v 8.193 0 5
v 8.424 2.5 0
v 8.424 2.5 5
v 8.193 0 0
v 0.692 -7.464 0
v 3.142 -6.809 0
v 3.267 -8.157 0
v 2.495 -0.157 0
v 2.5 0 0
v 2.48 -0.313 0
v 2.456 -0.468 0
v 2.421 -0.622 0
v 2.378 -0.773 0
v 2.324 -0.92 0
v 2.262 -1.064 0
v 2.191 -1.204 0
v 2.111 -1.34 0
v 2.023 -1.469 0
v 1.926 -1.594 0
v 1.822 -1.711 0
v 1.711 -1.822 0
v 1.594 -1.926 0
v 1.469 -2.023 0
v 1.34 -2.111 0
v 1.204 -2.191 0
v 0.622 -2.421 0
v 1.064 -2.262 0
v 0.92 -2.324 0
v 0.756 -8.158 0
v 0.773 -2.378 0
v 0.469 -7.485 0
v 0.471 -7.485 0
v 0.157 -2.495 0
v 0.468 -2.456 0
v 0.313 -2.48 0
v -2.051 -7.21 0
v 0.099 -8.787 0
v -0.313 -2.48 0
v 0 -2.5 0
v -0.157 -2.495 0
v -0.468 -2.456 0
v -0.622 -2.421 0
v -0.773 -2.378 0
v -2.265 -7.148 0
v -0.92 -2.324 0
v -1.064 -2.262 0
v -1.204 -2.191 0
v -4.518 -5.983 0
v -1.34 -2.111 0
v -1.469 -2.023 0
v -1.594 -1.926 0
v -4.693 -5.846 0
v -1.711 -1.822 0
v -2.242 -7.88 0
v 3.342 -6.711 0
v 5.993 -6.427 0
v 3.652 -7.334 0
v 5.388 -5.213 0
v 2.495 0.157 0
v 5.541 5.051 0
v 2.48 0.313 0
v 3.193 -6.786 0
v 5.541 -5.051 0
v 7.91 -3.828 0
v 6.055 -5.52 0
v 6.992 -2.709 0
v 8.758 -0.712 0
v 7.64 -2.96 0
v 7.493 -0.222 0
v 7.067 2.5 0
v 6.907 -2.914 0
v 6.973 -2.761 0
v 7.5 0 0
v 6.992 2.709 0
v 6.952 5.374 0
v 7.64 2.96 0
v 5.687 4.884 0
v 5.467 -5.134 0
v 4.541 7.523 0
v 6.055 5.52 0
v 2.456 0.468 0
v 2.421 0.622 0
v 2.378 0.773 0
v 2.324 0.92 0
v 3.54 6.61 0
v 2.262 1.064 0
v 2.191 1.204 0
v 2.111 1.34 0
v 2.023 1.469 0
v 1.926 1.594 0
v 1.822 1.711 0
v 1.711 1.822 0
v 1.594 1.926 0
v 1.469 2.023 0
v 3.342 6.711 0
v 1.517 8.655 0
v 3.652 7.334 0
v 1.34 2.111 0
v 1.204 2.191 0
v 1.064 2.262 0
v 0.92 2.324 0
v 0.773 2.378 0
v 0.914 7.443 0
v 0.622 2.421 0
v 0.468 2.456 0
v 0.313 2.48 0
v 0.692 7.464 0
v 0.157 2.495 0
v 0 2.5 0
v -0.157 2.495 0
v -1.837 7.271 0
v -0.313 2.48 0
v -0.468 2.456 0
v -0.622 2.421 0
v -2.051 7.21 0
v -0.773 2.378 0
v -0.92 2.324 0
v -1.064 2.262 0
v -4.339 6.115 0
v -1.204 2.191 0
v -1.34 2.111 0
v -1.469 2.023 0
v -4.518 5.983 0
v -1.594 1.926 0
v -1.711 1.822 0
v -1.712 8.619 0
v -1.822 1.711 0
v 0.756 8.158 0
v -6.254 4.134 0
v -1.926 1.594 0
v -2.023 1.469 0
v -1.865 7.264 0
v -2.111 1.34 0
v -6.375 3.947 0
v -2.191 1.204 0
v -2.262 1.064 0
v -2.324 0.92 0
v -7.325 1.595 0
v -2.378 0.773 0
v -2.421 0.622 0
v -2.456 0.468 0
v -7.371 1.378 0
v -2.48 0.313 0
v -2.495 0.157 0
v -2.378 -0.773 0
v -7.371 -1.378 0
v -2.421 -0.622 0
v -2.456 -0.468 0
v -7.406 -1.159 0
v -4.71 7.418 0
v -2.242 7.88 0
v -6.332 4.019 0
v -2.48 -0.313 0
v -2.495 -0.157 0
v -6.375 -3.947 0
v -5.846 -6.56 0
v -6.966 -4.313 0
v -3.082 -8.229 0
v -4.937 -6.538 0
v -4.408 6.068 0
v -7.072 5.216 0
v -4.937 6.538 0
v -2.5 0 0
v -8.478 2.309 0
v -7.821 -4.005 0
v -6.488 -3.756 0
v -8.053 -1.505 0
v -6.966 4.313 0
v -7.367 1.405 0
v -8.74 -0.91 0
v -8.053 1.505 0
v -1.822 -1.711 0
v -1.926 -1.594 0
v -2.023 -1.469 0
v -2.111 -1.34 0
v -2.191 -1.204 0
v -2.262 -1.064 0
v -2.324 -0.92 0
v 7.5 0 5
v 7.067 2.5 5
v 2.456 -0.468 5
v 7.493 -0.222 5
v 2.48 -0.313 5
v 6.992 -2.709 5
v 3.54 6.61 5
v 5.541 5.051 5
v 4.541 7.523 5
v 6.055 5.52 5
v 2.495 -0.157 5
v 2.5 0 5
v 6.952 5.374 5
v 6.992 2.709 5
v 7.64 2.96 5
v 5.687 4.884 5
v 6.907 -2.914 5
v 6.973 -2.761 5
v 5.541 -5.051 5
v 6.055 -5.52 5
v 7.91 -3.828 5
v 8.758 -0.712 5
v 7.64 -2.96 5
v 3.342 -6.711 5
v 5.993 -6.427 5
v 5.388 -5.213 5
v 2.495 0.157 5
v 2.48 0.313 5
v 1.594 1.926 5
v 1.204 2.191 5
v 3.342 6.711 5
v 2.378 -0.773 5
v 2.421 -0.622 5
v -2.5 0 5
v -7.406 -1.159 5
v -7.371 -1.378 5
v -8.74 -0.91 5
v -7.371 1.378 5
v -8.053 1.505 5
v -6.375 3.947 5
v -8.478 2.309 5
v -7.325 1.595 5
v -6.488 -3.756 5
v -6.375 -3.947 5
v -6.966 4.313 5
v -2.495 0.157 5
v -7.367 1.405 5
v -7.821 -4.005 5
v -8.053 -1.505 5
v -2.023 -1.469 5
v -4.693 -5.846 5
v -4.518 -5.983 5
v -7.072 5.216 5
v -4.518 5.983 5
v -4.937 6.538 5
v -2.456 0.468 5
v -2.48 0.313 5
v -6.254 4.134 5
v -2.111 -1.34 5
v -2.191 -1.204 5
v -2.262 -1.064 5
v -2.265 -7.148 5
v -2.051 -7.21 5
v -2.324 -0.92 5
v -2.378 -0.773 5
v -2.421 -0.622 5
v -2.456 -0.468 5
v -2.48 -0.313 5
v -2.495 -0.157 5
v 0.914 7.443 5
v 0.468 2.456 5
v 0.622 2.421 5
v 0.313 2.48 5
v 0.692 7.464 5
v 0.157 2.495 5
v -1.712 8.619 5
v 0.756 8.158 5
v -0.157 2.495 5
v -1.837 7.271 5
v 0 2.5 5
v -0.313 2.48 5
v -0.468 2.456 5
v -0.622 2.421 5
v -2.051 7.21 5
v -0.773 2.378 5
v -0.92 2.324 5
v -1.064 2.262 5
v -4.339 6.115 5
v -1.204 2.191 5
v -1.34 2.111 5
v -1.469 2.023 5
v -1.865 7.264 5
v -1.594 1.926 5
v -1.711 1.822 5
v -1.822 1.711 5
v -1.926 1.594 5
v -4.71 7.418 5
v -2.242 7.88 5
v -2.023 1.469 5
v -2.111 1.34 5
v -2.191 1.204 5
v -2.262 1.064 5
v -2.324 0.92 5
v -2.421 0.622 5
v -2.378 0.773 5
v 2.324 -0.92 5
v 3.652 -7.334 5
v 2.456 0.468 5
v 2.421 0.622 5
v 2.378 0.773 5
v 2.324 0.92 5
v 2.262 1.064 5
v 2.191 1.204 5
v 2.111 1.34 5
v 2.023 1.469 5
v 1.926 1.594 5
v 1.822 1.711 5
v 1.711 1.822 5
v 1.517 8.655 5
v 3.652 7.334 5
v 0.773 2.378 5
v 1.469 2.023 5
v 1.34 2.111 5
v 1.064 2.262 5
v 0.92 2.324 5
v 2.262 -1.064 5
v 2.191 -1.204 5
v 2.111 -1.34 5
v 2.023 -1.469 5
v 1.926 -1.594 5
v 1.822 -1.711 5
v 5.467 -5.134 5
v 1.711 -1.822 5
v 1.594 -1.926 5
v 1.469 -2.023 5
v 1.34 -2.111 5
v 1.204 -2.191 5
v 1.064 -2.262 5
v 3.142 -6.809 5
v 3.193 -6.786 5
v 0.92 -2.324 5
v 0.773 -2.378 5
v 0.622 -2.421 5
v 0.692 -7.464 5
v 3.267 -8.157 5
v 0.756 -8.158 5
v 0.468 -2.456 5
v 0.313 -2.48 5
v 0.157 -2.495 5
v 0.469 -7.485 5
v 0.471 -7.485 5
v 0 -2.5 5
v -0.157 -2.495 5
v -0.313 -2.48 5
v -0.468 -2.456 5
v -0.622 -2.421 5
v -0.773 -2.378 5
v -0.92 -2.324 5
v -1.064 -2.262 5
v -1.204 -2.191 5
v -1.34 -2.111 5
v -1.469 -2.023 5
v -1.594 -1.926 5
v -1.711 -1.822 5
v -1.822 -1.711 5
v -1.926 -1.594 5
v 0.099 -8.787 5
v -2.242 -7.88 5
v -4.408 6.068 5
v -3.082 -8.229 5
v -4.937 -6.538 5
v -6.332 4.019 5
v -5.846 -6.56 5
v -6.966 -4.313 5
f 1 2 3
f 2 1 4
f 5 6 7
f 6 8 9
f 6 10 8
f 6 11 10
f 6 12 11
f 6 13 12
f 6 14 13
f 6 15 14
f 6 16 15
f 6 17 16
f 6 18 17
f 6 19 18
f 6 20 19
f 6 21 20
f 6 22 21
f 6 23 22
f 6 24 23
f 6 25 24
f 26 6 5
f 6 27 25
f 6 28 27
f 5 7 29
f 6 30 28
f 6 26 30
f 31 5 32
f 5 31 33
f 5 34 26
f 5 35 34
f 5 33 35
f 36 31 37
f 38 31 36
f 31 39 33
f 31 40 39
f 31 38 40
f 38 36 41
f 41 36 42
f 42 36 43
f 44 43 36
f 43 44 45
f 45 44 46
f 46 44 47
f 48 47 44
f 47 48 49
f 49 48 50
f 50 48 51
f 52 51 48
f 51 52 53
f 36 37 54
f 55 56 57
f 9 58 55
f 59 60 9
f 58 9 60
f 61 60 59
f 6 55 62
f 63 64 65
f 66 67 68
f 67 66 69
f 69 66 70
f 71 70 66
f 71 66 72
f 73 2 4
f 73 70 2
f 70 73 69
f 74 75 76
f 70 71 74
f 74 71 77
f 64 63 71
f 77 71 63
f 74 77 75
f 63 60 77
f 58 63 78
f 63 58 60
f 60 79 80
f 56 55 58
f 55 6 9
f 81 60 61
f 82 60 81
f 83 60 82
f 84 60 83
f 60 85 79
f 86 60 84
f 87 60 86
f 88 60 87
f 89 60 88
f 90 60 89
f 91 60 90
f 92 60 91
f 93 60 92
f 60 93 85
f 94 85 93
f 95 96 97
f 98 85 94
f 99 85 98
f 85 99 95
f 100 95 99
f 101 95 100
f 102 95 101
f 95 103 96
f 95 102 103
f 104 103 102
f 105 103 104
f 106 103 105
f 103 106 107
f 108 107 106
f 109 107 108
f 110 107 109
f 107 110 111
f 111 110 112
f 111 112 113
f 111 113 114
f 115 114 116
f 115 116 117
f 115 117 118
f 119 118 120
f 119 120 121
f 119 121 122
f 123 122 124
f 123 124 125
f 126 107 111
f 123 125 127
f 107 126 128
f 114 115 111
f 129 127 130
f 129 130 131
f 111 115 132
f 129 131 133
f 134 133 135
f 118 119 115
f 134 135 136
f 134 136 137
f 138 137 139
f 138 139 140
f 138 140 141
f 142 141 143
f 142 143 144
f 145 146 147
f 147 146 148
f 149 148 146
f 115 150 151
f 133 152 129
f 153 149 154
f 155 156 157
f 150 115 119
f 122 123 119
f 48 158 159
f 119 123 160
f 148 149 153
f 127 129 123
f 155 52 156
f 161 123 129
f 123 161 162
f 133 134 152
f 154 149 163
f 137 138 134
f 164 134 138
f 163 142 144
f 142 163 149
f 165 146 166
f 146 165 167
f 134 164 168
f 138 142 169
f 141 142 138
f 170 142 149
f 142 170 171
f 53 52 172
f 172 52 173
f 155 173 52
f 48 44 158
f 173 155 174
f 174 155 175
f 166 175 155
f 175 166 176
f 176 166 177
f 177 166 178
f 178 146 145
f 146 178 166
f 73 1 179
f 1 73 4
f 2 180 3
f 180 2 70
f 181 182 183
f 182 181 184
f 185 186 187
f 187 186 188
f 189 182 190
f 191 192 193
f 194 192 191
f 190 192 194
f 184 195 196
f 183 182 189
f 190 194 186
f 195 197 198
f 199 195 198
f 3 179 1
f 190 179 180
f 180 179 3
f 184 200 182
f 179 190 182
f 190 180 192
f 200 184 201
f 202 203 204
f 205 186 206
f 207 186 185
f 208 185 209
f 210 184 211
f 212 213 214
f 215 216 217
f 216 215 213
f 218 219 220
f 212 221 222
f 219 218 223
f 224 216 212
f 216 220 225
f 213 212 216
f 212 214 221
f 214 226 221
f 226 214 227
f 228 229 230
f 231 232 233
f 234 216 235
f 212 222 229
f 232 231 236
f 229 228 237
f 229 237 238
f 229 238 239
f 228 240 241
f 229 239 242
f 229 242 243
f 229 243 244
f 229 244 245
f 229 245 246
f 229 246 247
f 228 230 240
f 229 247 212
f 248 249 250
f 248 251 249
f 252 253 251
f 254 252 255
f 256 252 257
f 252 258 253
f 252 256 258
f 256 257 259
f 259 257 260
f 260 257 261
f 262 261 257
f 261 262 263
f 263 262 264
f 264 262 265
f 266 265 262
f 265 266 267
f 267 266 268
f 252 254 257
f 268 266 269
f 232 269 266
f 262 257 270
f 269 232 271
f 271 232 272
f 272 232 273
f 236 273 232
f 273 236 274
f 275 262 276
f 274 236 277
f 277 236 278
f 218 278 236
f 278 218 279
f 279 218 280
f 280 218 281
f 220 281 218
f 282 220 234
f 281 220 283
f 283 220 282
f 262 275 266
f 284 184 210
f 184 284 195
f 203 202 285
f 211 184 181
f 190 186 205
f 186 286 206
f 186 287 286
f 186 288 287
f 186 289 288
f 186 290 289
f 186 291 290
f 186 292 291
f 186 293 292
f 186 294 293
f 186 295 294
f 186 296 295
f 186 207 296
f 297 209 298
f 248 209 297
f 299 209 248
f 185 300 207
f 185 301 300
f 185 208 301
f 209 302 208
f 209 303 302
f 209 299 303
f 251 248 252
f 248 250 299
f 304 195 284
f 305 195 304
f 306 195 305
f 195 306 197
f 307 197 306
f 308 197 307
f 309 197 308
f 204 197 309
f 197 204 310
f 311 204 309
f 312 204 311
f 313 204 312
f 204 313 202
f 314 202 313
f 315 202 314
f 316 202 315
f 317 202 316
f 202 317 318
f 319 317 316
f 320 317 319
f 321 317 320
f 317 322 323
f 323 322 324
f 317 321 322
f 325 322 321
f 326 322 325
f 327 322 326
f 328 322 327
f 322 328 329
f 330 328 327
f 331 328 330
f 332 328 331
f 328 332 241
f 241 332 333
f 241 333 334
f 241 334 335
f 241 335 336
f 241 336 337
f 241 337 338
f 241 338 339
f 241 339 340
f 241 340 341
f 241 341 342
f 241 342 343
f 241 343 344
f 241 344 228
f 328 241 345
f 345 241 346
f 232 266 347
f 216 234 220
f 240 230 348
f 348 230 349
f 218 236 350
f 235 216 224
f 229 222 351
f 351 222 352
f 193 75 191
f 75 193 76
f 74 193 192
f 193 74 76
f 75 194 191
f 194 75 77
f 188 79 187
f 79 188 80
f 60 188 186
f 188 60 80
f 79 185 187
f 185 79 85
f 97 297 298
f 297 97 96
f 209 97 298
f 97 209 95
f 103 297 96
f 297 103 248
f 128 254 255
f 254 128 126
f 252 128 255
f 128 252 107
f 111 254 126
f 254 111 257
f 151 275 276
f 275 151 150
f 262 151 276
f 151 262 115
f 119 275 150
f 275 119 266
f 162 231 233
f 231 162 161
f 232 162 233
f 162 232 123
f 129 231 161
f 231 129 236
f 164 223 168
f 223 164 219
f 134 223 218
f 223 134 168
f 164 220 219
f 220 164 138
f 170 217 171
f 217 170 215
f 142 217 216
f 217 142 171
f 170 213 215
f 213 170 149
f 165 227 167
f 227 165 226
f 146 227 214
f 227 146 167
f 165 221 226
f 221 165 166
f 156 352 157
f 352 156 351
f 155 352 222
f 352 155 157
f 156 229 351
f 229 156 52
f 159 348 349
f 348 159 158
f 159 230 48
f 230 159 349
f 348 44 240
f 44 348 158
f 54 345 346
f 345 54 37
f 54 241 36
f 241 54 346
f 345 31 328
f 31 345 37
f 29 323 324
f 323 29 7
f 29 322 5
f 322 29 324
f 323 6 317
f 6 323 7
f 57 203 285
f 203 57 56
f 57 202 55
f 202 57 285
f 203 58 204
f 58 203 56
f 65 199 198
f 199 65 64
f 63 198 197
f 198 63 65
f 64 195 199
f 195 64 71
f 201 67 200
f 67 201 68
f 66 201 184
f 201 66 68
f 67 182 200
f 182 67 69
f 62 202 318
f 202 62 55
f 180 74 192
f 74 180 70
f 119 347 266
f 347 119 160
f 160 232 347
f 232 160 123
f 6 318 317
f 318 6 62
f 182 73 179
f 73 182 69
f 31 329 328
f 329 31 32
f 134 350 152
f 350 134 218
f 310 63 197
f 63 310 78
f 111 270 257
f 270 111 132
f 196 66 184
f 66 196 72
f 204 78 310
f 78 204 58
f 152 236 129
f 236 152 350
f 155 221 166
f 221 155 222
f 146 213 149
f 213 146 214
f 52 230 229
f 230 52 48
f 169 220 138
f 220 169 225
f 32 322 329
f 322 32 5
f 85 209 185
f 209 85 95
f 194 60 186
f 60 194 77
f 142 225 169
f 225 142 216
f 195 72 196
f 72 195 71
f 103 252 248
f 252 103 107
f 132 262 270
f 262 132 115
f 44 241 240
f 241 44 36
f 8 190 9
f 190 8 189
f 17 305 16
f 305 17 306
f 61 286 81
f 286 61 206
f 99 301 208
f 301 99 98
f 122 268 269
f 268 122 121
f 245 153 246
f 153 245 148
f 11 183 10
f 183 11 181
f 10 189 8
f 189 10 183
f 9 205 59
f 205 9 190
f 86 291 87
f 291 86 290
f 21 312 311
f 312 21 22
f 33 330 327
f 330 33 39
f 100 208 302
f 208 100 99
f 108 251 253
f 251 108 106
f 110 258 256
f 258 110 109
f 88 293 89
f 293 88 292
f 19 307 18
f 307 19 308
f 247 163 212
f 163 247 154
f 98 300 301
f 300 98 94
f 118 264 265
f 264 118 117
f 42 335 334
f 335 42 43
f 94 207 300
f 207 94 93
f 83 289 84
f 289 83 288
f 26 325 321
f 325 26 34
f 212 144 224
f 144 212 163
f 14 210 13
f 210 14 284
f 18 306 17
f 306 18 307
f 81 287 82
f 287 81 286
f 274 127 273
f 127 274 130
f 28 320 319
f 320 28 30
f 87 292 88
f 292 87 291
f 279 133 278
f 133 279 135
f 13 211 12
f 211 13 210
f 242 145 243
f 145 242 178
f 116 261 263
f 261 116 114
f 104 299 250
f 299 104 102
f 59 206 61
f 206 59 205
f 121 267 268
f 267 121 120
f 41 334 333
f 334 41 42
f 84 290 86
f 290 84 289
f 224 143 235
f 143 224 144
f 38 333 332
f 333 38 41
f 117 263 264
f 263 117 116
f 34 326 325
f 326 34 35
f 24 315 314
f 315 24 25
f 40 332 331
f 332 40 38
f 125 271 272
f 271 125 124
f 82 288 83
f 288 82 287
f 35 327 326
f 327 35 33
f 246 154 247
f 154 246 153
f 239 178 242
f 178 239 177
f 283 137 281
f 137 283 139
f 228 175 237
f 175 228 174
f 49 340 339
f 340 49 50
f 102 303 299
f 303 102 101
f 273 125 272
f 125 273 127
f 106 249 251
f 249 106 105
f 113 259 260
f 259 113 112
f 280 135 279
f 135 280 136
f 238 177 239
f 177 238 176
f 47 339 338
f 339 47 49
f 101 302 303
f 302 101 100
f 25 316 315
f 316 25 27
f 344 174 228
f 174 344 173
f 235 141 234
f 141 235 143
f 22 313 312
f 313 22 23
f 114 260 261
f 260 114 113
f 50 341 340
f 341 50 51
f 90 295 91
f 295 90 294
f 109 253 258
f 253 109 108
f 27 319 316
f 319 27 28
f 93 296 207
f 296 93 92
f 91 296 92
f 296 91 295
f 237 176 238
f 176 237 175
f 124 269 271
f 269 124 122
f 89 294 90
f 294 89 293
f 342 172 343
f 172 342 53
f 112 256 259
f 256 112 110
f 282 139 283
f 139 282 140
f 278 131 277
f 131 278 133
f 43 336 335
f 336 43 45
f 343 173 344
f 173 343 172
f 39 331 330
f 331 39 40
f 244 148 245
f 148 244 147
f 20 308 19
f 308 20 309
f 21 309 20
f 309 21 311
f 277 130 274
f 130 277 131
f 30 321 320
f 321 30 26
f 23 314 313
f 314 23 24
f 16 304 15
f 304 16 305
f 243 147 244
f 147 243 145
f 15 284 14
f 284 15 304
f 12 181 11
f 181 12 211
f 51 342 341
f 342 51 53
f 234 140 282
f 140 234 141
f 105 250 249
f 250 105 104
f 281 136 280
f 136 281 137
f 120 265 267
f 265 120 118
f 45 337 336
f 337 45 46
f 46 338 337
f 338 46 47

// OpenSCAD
// Spur gear generator
// Generated on 2024-06-01

// Parameters
$fn = 100; // Resolution

// Gear parameters
teeth = 17;
outer_diameter = 20;
bore_diameter = 5;
thickness = 5;
pressure_angle = 20; // Not used in simplified model
inner_diameter = 15;

// Calculated dimensions
root_diameter = inner_diameter;
tooth_height = (outer_diameter - root_diameter) / 2;
root_radius = root_diameter / 2;
outer_radius = outer_diameter / 2;

// Simplified tooth profile widths
base_width = (3.14159 * root_diameter) / (2 * teeth);
top_width = (3.14159 * outer_diameter) / (2 * teeth);

// Main gear body
difference() {
    // Union of root cylinder and teeth
    union() {
        // Root cylinder
        cylinder(h = thickness, r = root_radius, center = false);
        // Teeth
        for (i = [0:teeth-1]) {
            rotate([0, 0, i * (360 / teeth)]) {
                translate([root_radius, 0, 0]) {
                    // Create one tooth
                    linear_extrude(height = thickness) {
                        polygon(points = [
                            [0, 0],
                            [base_width/2, 0],
                            [top_width/2, tooth_height],
                            [-top_width/2, tooth_height],
                            [-base_width/2, 0]
                        ]);
                    }
                }
            }
        }
    }
    // Bore hole
    translate([0, 0, -0.1]) {
        cylinder(h = thickness + 0.2, d = bore_diameter, center = false);
    }
}
